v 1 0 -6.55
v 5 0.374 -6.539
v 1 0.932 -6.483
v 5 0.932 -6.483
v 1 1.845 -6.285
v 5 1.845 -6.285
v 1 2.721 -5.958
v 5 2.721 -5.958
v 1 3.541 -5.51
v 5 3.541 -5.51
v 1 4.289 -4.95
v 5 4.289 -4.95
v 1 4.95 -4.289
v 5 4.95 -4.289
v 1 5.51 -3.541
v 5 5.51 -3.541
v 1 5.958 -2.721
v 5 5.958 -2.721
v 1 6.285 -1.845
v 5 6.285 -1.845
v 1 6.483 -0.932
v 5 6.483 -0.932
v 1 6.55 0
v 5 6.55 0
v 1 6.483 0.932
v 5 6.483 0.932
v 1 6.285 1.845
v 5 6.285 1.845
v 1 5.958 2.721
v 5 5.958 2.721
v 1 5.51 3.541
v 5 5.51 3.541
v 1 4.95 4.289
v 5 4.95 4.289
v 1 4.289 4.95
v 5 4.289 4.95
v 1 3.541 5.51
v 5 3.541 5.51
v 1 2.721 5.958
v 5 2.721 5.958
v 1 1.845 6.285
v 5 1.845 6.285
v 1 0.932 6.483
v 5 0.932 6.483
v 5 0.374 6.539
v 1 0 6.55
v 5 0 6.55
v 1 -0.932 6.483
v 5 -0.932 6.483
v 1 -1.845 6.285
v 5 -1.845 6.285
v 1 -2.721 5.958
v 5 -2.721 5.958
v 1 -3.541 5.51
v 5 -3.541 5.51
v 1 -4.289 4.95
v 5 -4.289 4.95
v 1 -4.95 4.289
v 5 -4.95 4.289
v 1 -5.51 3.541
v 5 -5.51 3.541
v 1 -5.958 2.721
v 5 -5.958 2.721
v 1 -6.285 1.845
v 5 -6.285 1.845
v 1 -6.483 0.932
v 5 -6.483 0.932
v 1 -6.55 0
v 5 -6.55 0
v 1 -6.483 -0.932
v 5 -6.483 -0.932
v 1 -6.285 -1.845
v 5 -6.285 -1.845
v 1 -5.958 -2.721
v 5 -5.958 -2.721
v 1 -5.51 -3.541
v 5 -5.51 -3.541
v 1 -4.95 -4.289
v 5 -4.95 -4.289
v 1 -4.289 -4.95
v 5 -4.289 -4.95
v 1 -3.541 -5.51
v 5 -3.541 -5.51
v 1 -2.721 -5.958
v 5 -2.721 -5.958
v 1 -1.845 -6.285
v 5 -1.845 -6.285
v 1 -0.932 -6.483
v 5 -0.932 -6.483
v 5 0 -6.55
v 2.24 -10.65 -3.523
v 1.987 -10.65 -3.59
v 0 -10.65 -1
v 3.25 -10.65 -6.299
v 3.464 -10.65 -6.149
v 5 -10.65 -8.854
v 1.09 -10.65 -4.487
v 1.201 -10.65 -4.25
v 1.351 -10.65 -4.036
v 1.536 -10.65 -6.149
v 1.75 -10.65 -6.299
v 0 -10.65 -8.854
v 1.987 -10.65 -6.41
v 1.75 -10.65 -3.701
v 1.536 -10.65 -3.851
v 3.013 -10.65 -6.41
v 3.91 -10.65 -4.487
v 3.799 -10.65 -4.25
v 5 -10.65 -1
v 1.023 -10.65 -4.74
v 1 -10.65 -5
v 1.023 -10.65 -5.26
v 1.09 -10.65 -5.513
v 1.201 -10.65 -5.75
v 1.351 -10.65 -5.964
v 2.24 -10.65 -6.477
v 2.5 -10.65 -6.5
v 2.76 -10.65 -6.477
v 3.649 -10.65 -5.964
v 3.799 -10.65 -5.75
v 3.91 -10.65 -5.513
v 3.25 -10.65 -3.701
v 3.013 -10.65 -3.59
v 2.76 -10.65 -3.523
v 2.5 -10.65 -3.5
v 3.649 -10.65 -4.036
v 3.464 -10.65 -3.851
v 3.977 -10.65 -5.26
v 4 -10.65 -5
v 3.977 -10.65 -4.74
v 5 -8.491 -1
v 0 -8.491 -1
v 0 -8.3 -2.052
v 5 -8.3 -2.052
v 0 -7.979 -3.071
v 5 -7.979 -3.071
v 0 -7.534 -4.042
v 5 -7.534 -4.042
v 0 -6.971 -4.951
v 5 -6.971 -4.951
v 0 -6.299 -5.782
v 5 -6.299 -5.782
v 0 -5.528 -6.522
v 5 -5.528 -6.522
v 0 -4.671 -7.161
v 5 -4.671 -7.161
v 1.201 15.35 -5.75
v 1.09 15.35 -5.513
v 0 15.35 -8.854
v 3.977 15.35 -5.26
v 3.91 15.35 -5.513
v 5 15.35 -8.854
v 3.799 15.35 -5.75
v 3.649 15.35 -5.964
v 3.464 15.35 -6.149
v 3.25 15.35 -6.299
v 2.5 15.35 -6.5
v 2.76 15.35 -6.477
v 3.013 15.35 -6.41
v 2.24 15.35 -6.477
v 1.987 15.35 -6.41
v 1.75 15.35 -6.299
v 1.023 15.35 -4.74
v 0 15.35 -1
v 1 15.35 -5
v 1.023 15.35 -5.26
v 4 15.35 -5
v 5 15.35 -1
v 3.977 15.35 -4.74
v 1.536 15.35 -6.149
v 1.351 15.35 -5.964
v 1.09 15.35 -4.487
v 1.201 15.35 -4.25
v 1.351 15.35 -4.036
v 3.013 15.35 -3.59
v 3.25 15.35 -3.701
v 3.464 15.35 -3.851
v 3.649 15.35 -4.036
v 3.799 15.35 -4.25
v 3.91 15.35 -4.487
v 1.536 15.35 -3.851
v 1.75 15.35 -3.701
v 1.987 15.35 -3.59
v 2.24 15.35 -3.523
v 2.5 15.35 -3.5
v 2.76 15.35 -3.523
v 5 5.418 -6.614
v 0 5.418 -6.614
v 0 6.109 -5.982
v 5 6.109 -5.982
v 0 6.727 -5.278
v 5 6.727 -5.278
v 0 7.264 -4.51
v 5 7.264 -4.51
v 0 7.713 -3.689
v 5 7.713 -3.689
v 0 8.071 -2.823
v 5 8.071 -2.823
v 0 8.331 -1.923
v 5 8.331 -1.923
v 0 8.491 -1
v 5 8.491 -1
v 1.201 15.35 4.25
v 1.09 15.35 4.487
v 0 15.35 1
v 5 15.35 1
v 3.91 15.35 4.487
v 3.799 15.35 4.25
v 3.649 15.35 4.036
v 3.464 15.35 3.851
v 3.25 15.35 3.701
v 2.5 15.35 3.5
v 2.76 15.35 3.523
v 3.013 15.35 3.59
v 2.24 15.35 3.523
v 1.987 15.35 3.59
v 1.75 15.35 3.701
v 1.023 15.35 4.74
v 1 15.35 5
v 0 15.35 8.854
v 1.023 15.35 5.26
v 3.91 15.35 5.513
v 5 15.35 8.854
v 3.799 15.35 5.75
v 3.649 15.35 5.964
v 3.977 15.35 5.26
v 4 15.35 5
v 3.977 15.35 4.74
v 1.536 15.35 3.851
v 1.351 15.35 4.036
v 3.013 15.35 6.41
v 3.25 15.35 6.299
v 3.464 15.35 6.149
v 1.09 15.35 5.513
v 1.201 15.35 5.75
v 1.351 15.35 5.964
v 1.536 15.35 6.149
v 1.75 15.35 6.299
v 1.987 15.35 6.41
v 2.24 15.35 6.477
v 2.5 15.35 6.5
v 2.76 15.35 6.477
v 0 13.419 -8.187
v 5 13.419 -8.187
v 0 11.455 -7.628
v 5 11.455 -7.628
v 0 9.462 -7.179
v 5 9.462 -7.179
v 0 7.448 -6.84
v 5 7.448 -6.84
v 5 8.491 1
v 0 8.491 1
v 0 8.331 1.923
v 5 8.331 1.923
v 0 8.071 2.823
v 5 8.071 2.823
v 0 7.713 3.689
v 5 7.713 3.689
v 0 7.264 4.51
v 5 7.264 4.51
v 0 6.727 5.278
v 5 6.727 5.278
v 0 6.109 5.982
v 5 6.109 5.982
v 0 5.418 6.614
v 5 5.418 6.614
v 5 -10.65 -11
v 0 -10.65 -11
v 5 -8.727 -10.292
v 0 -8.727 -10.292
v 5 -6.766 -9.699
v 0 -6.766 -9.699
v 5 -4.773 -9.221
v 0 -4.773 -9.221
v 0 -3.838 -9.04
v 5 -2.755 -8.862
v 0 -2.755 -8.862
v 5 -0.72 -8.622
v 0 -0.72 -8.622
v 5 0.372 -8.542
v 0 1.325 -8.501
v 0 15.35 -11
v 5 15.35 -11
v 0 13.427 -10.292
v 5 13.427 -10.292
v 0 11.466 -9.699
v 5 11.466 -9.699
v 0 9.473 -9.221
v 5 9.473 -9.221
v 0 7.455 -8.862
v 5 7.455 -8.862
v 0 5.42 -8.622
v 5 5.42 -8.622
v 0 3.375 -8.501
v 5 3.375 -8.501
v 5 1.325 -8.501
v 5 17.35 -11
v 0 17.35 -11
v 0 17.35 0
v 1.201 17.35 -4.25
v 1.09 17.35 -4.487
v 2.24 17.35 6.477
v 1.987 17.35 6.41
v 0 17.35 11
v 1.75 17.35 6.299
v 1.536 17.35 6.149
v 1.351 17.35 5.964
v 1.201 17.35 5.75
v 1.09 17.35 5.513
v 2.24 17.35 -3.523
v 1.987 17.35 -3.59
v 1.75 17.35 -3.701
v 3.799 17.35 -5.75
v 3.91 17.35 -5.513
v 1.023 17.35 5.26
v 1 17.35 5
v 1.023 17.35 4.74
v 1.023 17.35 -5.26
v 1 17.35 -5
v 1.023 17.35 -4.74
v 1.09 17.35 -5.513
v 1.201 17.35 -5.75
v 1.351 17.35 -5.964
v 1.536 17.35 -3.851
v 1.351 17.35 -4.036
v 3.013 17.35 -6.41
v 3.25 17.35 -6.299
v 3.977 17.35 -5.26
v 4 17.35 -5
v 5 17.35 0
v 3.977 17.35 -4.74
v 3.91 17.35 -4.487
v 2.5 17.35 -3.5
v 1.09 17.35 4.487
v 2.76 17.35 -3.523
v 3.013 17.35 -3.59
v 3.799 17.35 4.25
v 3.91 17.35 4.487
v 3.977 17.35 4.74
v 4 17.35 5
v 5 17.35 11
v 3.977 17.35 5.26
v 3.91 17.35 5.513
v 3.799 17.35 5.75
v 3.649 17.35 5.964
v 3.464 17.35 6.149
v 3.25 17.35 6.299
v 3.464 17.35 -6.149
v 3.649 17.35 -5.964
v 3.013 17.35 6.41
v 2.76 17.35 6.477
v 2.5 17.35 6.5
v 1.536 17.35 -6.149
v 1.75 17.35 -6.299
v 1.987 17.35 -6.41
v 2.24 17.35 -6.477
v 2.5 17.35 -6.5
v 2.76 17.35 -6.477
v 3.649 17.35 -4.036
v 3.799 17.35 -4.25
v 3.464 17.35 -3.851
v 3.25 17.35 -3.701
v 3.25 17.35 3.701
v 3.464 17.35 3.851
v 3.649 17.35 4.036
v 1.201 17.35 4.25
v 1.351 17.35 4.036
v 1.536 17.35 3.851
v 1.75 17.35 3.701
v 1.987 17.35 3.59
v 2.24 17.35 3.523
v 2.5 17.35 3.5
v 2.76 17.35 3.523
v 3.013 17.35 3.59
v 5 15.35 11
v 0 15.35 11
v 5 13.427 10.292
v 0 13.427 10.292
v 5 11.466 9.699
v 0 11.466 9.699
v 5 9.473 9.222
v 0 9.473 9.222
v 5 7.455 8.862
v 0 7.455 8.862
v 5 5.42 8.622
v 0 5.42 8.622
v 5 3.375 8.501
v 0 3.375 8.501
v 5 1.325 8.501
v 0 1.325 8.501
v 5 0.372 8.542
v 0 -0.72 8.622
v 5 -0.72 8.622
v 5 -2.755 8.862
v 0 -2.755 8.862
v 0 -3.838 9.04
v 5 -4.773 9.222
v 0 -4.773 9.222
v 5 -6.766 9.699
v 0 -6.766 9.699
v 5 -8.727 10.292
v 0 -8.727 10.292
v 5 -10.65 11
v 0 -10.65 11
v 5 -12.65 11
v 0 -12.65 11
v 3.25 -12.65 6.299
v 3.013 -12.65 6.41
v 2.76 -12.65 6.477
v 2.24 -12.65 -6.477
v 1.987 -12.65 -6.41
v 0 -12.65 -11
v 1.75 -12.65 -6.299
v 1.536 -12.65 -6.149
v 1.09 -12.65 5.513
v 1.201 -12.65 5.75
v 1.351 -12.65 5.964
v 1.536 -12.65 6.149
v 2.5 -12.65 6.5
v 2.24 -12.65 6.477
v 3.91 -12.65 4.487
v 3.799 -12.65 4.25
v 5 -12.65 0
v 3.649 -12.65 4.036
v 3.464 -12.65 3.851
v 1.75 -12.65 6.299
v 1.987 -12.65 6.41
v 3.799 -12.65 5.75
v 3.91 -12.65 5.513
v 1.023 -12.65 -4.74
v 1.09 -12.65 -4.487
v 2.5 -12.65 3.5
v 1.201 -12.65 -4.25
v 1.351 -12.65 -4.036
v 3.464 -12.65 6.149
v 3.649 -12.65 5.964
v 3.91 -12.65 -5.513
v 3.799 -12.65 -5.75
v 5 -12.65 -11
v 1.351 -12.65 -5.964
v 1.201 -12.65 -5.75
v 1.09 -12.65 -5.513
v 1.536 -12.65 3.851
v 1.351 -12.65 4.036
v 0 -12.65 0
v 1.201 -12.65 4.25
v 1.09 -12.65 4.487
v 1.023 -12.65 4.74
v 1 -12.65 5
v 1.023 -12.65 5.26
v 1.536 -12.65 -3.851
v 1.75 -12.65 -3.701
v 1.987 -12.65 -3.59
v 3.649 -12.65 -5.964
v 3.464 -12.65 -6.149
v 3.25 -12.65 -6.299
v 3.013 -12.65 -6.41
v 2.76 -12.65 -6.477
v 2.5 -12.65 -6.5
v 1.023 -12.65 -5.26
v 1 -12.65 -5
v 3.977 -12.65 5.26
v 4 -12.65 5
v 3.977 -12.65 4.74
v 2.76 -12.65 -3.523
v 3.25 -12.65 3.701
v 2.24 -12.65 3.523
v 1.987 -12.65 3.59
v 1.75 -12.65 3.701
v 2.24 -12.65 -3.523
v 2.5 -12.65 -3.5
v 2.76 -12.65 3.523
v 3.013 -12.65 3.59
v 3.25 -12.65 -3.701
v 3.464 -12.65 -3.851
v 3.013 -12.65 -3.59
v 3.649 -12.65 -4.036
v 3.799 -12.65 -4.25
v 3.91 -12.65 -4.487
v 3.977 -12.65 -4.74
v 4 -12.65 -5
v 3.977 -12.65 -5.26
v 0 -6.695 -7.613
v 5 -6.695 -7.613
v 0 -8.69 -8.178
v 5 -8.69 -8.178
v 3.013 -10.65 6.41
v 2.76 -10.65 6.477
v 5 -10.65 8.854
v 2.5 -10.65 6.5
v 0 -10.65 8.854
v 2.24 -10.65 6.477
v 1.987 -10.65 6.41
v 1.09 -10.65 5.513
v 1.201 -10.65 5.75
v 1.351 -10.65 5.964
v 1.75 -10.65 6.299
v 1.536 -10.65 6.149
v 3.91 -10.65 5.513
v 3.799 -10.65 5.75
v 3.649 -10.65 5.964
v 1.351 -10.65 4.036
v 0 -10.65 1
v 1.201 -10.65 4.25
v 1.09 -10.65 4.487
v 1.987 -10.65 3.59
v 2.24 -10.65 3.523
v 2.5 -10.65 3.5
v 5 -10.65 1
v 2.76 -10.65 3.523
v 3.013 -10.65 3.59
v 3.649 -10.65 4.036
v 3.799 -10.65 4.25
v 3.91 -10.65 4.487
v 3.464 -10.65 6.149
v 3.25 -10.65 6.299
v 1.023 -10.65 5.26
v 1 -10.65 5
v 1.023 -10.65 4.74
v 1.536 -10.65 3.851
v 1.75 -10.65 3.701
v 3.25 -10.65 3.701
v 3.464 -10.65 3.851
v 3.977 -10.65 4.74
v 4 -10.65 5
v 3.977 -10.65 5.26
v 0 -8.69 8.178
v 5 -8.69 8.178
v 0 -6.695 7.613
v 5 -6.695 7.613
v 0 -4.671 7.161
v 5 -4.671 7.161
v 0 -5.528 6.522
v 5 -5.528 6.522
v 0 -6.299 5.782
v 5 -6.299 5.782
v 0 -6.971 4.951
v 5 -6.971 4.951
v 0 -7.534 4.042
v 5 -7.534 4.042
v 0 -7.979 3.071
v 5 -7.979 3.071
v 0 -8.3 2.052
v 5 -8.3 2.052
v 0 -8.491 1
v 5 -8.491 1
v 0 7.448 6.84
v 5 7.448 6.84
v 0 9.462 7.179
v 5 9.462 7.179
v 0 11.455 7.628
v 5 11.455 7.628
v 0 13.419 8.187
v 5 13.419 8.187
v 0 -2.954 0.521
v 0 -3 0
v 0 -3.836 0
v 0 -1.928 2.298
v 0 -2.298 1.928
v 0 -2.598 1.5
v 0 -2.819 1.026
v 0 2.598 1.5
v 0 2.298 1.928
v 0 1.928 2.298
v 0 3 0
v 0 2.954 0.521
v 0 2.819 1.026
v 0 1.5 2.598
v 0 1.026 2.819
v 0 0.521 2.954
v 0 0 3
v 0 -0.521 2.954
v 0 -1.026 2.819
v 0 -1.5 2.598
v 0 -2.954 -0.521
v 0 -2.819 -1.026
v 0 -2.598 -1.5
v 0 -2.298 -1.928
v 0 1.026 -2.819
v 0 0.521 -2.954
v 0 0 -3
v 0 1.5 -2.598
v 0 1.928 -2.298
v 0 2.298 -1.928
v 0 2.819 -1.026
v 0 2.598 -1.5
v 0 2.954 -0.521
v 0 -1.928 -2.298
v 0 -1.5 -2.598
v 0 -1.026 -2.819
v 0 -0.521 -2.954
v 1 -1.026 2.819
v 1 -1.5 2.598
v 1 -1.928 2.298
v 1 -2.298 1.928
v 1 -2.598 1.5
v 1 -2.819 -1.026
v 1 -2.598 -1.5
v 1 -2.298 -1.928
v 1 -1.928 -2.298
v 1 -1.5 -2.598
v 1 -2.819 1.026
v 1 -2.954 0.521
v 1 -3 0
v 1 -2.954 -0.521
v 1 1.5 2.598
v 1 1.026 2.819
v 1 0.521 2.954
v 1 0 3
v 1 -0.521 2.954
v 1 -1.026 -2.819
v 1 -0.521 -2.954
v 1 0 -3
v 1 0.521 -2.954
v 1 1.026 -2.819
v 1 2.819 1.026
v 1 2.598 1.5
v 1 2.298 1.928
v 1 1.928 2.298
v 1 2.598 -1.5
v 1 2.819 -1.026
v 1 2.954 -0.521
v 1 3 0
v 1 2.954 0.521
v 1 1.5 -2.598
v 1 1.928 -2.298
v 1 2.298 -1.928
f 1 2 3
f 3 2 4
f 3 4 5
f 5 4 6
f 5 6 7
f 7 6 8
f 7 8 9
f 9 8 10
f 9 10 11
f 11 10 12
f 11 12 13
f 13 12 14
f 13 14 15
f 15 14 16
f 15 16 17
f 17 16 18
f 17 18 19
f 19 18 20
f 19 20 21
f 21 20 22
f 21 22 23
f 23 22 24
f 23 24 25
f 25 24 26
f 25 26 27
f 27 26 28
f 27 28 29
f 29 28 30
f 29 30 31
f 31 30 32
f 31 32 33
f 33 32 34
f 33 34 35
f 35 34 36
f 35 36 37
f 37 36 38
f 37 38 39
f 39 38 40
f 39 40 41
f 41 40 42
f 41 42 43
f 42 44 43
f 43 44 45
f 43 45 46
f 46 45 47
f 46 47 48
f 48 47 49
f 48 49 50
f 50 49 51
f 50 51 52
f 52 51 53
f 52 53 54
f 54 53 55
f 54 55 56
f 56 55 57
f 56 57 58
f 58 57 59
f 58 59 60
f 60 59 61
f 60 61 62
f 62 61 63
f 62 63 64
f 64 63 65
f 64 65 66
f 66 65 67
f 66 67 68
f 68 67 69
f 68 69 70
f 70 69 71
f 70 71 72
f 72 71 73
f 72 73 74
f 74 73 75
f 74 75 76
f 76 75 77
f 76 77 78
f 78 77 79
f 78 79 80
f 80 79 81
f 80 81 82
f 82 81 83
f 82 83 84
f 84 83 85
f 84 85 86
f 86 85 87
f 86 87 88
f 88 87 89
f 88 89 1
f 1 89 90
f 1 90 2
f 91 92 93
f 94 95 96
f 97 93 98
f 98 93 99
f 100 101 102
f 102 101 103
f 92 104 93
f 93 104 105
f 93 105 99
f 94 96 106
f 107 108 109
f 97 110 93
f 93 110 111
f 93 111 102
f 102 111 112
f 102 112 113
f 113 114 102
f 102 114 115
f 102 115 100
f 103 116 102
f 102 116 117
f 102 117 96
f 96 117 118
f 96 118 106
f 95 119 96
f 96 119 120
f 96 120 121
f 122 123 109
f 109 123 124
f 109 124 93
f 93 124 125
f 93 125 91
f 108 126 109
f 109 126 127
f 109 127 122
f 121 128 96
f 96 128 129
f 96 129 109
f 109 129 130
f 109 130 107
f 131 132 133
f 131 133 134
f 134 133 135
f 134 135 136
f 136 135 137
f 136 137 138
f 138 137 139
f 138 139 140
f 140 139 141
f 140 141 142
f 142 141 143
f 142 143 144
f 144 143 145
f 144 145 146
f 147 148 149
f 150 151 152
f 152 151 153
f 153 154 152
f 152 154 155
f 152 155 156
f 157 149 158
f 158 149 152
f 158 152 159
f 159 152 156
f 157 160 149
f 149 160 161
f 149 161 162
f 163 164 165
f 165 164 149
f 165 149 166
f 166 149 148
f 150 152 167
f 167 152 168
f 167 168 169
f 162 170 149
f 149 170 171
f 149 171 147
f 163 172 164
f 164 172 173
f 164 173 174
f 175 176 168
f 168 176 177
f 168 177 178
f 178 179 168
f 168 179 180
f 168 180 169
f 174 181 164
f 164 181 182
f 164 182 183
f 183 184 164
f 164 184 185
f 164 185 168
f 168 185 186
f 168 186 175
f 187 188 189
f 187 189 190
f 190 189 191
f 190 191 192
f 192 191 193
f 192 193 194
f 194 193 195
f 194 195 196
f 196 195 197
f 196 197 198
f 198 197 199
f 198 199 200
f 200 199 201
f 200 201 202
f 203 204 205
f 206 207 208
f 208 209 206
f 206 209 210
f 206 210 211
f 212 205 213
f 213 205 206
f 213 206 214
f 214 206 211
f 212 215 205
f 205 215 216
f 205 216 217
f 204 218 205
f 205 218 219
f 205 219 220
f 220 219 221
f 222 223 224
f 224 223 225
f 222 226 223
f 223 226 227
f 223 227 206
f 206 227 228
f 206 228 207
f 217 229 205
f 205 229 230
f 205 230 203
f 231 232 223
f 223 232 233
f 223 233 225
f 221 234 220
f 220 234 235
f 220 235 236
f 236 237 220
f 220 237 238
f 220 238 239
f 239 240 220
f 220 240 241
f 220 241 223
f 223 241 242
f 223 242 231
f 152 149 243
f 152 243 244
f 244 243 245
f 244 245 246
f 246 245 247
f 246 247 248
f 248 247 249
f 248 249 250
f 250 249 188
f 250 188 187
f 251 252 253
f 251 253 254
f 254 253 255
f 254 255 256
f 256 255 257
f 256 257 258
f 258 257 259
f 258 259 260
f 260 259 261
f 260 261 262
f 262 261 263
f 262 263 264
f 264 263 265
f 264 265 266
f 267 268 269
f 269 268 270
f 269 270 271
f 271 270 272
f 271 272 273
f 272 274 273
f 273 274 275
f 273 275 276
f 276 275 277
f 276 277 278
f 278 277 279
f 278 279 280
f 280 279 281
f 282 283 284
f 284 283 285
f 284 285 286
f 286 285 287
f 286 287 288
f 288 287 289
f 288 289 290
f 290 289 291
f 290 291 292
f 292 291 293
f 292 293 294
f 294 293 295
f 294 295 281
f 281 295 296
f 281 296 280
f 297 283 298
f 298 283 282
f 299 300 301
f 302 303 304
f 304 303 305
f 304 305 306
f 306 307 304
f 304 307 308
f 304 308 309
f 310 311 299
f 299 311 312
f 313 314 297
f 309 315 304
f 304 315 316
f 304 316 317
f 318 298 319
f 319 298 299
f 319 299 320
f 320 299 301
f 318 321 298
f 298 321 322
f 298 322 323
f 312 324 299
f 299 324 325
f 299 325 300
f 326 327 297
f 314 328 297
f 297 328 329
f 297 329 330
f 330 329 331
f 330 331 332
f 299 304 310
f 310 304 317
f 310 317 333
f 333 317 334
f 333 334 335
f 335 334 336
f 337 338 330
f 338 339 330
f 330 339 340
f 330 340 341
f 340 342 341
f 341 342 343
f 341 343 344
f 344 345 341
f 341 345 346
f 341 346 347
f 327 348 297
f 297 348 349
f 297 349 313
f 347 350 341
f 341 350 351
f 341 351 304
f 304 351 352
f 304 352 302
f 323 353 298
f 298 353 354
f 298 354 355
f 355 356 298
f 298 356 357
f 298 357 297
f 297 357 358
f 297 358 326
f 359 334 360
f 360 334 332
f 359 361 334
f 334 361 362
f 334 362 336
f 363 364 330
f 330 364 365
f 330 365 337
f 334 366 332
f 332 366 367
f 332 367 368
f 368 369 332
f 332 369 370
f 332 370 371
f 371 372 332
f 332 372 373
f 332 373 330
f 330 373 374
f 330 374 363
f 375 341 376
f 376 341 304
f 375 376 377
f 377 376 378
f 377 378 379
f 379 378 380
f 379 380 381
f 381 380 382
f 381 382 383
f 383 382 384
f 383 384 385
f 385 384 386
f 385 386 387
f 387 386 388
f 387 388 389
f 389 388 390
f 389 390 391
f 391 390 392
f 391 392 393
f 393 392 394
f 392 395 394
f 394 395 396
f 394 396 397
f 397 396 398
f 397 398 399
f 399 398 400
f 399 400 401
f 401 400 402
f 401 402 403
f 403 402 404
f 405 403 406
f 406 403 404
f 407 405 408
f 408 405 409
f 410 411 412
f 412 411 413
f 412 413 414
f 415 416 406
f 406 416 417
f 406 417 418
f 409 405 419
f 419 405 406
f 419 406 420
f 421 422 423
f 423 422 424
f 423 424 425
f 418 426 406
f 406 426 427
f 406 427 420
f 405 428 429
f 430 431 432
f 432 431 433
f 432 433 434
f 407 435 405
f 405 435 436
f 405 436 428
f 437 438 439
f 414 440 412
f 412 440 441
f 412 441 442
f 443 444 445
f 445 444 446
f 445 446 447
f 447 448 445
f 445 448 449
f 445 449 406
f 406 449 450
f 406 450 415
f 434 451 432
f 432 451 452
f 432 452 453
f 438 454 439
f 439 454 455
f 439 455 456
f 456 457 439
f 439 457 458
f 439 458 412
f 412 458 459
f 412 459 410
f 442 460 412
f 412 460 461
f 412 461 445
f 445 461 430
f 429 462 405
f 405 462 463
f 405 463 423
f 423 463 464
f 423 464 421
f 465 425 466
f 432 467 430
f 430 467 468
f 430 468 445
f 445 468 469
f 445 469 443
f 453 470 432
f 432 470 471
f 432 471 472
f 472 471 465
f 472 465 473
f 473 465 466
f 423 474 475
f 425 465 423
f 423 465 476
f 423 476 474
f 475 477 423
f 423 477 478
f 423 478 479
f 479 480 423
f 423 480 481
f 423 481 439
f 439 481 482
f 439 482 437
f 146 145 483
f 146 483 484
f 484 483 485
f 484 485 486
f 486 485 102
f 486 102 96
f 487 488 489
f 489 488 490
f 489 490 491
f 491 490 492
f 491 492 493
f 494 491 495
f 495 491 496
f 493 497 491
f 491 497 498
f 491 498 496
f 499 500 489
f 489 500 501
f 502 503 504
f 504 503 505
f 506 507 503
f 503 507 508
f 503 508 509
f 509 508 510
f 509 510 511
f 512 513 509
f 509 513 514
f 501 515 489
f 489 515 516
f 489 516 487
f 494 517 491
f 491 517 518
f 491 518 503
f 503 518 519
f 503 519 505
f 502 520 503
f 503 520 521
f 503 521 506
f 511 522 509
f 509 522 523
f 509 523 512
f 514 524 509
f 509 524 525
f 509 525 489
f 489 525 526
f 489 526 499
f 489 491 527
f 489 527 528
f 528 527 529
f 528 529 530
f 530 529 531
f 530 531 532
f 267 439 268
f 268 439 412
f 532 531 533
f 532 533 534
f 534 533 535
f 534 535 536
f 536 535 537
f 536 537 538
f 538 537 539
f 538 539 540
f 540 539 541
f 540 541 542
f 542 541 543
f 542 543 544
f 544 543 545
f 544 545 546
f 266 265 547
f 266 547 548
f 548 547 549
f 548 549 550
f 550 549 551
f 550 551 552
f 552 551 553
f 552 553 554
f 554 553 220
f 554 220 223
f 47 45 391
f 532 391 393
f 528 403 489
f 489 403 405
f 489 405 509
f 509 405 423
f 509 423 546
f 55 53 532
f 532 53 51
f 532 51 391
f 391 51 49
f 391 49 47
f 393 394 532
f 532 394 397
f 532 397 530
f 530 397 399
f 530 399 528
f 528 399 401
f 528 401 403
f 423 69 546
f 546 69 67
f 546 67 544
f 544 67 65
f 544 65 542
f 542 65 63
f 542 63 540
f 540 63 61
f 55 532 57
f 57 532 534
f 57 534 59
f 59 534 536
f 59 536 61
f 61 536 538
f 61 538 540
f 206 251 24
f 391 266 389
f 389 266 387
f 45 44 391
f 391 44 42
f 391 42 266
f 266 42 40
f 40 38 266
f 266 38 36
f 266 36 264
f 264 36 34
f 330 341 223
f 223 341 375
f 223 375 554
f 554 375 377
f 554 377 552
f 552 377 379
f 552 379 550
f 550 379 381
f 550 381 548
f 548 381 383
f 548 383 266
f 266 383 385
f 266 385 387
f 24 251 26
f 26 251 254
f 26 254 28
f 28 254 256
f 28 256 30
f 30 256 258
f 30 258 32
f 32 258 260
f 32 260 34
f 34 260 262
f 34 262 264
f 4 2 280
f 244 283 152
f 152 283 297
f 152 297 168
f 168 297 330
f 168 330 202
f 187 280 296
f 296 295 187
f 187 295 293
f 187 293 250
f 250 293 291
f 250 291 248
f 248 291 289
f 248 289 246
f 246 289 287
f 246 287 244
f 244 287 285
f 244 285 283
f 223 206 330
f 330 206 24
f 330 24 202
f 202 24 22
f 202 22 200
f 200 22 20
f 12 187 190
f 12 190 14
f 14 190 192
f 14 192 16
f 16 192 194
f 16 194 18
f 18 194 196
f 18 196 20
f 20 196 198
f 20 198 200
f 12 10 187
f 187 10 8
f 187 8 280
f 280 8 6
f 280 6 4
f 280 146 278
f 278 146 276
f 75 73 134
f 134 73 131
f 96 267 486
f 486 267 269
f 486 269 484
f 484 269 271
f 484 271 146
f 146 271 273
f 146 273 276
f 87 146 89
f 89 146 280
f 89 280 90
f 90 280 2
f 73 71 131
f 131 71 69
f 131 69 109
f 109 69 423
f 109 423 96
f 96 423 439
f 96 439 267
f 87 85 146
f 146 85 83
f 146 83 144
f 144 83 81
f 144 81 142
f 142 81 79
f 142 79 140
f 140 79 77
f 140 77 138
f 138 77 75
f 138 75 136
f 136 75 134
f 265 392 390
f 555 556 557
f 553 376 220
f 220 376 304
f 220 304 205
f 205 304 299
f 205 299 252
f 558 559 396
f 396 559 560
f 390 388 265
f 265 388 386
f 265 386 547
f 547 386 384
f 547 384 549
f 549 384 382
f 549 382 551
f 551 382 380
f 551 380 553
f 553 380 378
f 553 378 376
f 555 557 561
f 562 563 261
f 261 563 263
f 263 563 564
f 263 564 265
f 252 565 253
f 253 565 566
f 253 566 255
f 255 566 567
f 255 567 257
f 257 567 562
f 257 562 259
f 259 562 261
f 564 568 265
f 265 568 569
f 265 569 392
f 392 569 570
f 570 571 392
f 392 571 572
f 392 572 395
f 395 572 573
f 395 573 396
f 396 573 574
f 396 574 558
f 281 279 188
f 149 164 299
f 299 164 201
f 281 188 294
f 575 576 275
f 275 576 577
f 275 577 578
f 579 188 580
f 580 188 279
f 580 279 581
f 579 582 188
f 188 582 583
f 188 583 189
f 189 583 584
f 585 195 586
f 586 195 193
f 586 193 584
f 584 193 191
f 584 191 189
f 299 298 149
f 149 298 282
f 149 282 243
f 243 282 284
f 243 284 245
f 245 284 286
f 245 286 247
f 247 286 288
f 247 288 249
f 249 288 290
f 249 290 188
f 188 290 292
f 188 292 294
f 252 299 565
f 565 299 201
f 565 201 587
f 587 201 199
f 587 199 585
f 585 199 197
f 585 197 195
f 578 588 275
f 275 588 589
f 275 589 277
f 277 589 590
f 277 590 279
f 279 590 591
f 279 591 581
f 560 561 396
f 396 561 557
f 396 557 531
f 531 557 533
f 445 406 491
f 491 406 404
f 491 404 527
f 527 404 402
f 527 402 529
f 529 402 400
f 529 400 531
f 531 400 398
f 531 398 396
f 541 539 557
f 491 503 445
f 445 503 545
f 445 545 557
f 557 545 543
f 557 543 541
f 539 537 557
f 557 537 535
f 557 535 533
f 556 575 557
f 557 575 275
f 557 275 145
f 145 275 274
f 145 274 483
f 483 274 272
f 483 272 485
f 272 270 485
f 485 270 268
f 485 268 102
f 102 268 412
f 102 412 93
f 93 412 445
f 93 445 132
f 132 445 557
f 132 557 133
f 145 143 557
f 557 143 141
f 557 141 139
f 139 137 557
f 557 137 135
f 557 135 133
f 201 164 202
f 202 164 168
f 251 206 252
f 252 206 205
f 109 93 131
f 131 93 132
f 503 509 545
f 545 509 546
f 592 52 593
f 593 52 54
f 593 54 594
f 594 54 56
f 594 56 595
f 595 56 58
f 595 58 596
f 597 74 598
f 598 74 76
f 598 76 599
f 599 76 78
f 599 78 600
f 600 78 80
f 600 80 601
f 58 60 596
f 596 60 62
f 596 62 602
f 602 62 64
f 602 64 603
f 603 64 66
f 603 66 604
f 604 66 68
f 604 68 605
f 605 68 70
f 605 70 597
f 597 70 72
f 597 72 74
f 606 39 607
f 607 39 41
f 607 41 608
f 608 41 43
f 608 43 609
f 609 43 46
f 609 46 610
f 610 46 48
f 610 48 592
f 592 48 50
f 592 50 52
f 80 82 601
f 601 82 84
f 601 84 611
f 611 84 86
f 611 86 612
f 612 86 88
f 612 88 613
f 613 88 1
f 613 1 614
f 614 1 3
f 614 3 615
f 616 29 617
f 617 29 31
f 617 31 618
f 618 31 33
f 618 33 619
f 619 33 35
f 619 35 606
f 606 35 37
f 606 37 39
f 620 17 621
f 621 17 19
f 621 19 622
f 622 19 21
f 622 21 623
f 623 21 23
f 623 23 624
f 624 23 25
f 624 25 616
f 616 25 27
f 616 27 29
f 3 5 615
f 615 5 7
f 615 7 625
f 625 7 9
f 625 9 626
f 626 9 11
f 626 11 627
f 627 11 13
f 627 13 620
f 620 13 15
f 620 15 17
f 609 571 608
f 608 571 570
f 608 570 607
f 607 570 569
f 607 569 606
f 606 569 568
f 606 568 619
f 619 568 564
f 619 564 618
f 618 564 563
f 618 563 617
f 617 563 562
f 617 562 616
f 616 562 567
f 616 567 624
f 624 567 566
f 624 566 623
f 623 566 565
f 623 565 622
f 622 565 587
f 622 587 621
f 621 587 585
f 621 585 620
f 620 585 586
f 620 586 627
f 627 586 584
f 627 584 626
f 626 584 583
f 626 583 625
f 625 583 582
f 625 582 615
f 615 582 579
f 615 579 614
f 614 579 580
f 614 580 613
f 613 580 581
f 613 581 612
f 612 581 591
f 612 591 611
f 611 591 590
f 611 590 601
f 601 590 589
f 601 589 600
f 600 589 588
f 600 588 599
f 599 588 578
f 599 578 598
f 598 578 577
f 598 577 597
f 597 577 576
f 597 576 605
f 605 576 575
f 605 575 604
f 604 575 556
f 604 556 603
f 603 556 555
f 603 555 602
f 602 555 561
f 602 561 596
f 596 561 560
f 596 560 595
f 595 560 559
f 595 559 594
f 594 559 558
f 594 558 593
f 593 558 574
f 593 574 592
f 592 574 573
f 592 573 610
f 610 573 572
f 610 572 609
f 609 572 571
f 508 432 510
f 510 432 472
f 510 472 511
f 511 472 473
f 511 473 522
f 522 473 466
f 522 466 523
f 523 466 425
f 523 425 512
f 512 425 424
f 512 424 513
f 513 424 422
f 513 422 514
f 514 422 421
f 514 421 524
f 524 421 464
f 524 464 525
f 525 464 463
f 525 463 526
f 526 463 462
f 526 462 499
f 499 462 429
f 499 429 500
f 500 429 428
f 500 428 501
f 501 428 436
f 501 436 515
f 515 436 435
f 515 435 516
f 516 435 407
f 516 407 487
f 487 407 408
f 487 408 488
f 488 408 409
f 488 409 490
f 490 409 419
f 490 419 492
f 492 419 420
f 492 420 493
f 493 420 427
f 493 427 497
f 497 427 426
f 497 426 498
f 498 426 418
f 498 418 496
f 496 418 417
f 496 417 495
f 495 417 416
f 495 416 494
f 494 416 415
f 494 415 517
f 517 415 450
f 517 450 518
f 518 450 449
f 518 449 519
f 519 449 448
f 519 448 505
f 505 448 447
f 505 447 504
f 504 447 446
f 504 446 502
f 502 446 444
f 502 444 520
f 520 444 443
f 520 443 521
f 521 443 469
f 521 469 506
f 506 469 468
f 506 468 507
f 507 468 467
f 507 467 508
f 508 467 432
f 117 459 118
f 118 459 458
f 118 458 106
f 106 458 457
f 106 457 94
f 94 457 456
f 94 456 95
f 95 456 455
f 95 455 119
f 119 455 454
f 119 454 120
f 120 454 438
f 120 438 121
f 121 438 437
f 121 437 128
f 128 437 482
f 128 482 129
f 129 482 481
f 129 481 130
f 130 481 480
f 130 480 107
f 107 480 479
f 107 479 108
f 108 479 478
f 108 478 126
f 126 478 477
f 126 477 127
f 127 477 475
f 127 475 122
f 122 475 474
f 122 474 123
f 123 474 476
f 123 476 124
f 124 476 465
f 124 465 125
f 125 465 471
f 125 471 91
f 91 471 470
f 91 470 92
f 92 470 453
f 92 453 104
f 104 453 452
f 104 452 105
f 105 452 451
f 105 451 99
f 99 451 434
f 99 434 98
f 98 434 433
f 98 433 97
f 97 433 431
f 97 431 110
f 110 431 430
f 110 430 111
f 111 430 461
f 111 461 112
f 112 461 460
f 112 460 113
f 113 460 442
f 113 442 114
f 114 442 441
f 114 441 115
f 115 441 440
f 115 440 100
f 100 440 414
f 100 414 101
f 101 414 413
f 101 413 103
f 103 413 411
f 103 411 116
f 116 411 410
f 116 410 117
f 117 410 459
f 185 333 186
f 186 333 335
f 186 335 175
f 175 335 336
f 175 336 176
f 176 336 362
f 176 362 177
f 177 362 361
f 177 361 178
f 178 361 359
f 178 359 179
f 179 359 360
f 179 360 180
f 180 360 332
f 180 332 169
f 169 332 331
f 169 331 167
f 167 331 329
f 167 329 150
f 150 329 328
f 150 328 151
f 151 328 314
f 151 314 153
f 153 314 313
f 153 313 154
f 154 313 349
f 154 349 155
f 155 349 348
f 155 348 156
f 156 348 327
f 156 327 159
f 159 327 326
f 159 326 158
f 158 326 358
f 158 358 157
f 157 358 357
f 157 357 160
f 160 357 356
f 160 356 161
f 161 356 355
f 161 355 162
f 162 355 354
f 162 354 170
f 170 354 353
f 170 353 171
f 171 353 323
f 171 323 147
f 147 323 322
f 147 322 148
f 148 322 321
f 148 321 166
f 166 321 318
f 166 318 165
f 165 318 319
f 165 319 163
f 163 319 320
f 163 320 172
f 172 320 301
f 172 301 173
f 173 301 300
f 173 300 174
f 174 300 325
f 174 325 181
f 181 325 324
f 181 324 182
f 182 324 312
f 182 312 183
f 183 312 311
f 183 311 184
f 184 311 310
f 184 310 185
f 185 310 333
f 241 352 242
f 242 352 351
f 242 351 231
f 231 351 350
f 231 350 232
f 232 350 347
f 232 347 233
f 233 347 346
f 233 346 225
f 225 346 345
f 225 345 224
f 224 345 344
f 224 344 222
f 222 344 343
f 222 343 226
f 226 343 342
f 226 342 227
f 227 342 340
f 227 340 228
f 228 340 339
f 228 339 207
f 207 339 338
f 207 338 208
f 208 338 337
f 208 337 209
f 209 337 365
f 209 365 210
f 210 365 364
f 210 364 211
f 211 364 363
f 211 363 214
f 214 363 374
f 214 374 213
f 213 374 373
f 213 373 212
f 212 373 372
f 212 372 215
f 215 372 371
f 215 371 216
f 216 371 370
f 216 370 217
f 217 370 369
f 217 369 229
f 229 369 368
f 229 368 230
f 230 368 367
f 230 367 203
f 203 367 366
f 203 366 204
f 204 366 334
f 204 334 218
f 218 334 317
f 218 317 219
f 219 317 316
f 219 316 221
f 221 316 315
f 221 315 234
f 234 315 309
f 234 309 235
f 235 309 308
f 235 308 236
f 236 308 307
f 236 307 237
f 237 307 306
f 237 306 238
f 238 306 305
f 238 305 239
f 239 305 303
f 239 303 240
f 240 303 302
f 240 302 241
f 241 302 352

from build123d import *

# Parameters (mm, degrees)
SKETCH1_R           = 6.55
BOSS_EXTRUDE4_DEPTH = 5
SKETCH3_W           = 2
SKETCH3_H           = 8.8
SKETCH3_H_2         = 4.1
BOSS_EXTRUDE5_DEPTH = 5
SKETCH4_R           = 6.55
SKETCH4_R_2         = 3
BOSS_EXTRUDE6_DEPTH = 1
CUT_EXTRUDE1_REACH  = 34.342
SKETCH5_R           = 1.5
CUT_EXTRUDE2_REACH  = 34.342
SKETCH6_R           = 1.5


with BuildPart() as part:
    # Sketch1 → Boss-Extrude4 (new body)
    with BuildSketch(Plane(origin=(0, 0, 0), x_dir=(0, 0, -1), z_dir=(1, 0, 0))):
        with BuildLine():
            ThreePointArc((11, 15.35), (8.486364482, 2.35), (11, -10.65))
            Line((11, -10.65), (11, -12.65))
            Line((11, -12.65), (-11, -12.65))
            Line((-11, -12.65), (-11, -10.65))
            ThreePointArc((-11, -10.65), (-8.486364482, 2.35), (-11, 15.35))
            Line((-11, 15.35), (-11, 17.35))
            Line((-11, 17.35), (11, 17.35))
            Line((11, 17.35), (11, 15.35))
        make_face()
        Circle(SKETCH1_R, mode=Mode.SUBTRACT)
        with BuildLine():
            ThreePointArc((8.853997744, -10.65), (7.881360543, -7.696425461), (7.161040408, -4.671402389))
            ThreePointArc((7.161040408, -4.671402389), (0, -8.55), (-7.161040408, -4.671402389))
            ThreePointArc((-7.161040408, -4.671402389), (-7.881360543, -7.696425461), (-8.853997744, -10.65))
            Line((-8.853997744, -10.65), (8.853997744, -10.65))
        make_face(mode=Mode.SUBTRACT)
        with BuildLine():
            Line((-8.853997744, 15.35), (8.853997744, 15.35))
            ThreePointArc((8.853997744, 15.35), (7.389658447, 10.461671711), (6.614219323, 5.41798881))
            ThreePointArc((6.614219323, 5.41798881), (0, 8.55), (-6.614219323, 5.41798881))
            ThreePointArc((-6.614219323, 5.41798881), (-7.389658447, 10.461671711), (-8.853997744, 15.35))
        make_face(mode=Mode.SUBTRACT)
    extrude(amount=BOSS_EXTRUDE4_DEPTH)

    # Sketch3 → Boss-Extrude5 (add)
    with BuildSketch(Plane(origin=(5, 0, 0), x_dir=(0, 0, -1), z_dir=(1, 0, 0))):
        with Locations((0, 10.95)):
            Rectangle(SKETCH3_W, SKETCH3_H)
        with Locations((0, -8.6)):
            Rectangle(SKETCH3_W, SKETCH3_H_2)
    extrude(amount=-BOSS_EXTRUDE5_DEPTH)

    # Sketch4 → Boss-Extrude6 (add)
    with BuildSketch(Plane.ZY):
        Circle(SKETCH4_R)
        Circle(SKETCH4_R_2, mode=Mode.SUBTRACT)
    extrude(amount=-BOSS_EXTRUDE6_DEPTH)

    # Sketch5 → Cut-Extrude1 (cut, up to next)
    with BuildSketch(Plane.XZ.offset(12.65), mode=Mode.PRIVATE) as cut_extrude1_sk1:
        with Locations(Location((2.5, 5, 0), (0, 0, 270))):
            Circle(SKETCH5_R)
    cut_extrude1_tool1 = extrude(cut_extrude1_sk1.sketch, amount=-CUT_EXTRUDE1_REACH, mode=Mode.PRIVATE) & part.part
    # Sketch5 → Cut-Extrude1 (cut, up to next)
    with BuildSketch(Plane.XZ.offset(12.65), mode=Mode.PRIVATE) as cut_extrude1_sk2:
        with Locations(Location((2.5, -5, 0), (0, 0, 90))):
            Circle(SKETCH5_R)
    cut_extrude1_tool2 = extrude(cut_extrude1_sk2.sketch, amount=-CUT_EXTRUDE1_REACH, mode=Mode.PRIVATE) & part.part
    add(cut_extrude1_tool1.solids().sort_by_distance((2.5, -12.65, 5))[0], mode=Mode.SUBTRACT)
    add(cut_extrude1_tool2.solids().sort_by_distance((2.5, -12.65, -5))[0], mode=Mode.SUBTRACT)

    # Sketch6 → Cut-Extrude2 (cut, up to next)
    with BuildSketch(Plane(origin=(0, 17.35, 0), x_dir=(1, 0, 0), z_dir=(0, 1, 0)), mode=Mode.PRIVATE) as cut_extrude2_sk1:
        with Locations(Location((2.5, -5, 0), (0, 0, 90))):
            Circle(SKETCH6_R)
    cut_extrude2_tool1 = extrude(cut_extrude2_sk1.sketch, amount=-CUT_EXTRUDE2_REACH, mode=Mode.PRIVATE) & part.part
    # Sketch6 → Cut-Extrude2 (cut, up to next)
    with BuildSketch(Plane(origin=(0, 17.35, 0), x_dir=(1, 0, 0), z_dir=(0, 1, 0)), mode=Mode.PRIVATE) as cut_extrude2_sk2:
        with Locations(Location((2.5, 5, 0), (0, 0, 270))):
            Circle(SKETCH6_R)
    cut_extrude2_tool2 = extrude(cut_extrude2_sk2.sketch, amount=-CUT_EXTRUDE2_REACH, mode=Mode.PRIVATE) & part.part
    add(cut_extrude2_tool1.solids().sort_by_distance((2.5, 17.35, 5))[0], mode=Mode.SUBTRACT)
    add(cut_extrude2_tool2.solids().sort_by_distance((2.5, 17.35, -5))[0], mode=Mode.SUBTRACT)


solid = part.part
